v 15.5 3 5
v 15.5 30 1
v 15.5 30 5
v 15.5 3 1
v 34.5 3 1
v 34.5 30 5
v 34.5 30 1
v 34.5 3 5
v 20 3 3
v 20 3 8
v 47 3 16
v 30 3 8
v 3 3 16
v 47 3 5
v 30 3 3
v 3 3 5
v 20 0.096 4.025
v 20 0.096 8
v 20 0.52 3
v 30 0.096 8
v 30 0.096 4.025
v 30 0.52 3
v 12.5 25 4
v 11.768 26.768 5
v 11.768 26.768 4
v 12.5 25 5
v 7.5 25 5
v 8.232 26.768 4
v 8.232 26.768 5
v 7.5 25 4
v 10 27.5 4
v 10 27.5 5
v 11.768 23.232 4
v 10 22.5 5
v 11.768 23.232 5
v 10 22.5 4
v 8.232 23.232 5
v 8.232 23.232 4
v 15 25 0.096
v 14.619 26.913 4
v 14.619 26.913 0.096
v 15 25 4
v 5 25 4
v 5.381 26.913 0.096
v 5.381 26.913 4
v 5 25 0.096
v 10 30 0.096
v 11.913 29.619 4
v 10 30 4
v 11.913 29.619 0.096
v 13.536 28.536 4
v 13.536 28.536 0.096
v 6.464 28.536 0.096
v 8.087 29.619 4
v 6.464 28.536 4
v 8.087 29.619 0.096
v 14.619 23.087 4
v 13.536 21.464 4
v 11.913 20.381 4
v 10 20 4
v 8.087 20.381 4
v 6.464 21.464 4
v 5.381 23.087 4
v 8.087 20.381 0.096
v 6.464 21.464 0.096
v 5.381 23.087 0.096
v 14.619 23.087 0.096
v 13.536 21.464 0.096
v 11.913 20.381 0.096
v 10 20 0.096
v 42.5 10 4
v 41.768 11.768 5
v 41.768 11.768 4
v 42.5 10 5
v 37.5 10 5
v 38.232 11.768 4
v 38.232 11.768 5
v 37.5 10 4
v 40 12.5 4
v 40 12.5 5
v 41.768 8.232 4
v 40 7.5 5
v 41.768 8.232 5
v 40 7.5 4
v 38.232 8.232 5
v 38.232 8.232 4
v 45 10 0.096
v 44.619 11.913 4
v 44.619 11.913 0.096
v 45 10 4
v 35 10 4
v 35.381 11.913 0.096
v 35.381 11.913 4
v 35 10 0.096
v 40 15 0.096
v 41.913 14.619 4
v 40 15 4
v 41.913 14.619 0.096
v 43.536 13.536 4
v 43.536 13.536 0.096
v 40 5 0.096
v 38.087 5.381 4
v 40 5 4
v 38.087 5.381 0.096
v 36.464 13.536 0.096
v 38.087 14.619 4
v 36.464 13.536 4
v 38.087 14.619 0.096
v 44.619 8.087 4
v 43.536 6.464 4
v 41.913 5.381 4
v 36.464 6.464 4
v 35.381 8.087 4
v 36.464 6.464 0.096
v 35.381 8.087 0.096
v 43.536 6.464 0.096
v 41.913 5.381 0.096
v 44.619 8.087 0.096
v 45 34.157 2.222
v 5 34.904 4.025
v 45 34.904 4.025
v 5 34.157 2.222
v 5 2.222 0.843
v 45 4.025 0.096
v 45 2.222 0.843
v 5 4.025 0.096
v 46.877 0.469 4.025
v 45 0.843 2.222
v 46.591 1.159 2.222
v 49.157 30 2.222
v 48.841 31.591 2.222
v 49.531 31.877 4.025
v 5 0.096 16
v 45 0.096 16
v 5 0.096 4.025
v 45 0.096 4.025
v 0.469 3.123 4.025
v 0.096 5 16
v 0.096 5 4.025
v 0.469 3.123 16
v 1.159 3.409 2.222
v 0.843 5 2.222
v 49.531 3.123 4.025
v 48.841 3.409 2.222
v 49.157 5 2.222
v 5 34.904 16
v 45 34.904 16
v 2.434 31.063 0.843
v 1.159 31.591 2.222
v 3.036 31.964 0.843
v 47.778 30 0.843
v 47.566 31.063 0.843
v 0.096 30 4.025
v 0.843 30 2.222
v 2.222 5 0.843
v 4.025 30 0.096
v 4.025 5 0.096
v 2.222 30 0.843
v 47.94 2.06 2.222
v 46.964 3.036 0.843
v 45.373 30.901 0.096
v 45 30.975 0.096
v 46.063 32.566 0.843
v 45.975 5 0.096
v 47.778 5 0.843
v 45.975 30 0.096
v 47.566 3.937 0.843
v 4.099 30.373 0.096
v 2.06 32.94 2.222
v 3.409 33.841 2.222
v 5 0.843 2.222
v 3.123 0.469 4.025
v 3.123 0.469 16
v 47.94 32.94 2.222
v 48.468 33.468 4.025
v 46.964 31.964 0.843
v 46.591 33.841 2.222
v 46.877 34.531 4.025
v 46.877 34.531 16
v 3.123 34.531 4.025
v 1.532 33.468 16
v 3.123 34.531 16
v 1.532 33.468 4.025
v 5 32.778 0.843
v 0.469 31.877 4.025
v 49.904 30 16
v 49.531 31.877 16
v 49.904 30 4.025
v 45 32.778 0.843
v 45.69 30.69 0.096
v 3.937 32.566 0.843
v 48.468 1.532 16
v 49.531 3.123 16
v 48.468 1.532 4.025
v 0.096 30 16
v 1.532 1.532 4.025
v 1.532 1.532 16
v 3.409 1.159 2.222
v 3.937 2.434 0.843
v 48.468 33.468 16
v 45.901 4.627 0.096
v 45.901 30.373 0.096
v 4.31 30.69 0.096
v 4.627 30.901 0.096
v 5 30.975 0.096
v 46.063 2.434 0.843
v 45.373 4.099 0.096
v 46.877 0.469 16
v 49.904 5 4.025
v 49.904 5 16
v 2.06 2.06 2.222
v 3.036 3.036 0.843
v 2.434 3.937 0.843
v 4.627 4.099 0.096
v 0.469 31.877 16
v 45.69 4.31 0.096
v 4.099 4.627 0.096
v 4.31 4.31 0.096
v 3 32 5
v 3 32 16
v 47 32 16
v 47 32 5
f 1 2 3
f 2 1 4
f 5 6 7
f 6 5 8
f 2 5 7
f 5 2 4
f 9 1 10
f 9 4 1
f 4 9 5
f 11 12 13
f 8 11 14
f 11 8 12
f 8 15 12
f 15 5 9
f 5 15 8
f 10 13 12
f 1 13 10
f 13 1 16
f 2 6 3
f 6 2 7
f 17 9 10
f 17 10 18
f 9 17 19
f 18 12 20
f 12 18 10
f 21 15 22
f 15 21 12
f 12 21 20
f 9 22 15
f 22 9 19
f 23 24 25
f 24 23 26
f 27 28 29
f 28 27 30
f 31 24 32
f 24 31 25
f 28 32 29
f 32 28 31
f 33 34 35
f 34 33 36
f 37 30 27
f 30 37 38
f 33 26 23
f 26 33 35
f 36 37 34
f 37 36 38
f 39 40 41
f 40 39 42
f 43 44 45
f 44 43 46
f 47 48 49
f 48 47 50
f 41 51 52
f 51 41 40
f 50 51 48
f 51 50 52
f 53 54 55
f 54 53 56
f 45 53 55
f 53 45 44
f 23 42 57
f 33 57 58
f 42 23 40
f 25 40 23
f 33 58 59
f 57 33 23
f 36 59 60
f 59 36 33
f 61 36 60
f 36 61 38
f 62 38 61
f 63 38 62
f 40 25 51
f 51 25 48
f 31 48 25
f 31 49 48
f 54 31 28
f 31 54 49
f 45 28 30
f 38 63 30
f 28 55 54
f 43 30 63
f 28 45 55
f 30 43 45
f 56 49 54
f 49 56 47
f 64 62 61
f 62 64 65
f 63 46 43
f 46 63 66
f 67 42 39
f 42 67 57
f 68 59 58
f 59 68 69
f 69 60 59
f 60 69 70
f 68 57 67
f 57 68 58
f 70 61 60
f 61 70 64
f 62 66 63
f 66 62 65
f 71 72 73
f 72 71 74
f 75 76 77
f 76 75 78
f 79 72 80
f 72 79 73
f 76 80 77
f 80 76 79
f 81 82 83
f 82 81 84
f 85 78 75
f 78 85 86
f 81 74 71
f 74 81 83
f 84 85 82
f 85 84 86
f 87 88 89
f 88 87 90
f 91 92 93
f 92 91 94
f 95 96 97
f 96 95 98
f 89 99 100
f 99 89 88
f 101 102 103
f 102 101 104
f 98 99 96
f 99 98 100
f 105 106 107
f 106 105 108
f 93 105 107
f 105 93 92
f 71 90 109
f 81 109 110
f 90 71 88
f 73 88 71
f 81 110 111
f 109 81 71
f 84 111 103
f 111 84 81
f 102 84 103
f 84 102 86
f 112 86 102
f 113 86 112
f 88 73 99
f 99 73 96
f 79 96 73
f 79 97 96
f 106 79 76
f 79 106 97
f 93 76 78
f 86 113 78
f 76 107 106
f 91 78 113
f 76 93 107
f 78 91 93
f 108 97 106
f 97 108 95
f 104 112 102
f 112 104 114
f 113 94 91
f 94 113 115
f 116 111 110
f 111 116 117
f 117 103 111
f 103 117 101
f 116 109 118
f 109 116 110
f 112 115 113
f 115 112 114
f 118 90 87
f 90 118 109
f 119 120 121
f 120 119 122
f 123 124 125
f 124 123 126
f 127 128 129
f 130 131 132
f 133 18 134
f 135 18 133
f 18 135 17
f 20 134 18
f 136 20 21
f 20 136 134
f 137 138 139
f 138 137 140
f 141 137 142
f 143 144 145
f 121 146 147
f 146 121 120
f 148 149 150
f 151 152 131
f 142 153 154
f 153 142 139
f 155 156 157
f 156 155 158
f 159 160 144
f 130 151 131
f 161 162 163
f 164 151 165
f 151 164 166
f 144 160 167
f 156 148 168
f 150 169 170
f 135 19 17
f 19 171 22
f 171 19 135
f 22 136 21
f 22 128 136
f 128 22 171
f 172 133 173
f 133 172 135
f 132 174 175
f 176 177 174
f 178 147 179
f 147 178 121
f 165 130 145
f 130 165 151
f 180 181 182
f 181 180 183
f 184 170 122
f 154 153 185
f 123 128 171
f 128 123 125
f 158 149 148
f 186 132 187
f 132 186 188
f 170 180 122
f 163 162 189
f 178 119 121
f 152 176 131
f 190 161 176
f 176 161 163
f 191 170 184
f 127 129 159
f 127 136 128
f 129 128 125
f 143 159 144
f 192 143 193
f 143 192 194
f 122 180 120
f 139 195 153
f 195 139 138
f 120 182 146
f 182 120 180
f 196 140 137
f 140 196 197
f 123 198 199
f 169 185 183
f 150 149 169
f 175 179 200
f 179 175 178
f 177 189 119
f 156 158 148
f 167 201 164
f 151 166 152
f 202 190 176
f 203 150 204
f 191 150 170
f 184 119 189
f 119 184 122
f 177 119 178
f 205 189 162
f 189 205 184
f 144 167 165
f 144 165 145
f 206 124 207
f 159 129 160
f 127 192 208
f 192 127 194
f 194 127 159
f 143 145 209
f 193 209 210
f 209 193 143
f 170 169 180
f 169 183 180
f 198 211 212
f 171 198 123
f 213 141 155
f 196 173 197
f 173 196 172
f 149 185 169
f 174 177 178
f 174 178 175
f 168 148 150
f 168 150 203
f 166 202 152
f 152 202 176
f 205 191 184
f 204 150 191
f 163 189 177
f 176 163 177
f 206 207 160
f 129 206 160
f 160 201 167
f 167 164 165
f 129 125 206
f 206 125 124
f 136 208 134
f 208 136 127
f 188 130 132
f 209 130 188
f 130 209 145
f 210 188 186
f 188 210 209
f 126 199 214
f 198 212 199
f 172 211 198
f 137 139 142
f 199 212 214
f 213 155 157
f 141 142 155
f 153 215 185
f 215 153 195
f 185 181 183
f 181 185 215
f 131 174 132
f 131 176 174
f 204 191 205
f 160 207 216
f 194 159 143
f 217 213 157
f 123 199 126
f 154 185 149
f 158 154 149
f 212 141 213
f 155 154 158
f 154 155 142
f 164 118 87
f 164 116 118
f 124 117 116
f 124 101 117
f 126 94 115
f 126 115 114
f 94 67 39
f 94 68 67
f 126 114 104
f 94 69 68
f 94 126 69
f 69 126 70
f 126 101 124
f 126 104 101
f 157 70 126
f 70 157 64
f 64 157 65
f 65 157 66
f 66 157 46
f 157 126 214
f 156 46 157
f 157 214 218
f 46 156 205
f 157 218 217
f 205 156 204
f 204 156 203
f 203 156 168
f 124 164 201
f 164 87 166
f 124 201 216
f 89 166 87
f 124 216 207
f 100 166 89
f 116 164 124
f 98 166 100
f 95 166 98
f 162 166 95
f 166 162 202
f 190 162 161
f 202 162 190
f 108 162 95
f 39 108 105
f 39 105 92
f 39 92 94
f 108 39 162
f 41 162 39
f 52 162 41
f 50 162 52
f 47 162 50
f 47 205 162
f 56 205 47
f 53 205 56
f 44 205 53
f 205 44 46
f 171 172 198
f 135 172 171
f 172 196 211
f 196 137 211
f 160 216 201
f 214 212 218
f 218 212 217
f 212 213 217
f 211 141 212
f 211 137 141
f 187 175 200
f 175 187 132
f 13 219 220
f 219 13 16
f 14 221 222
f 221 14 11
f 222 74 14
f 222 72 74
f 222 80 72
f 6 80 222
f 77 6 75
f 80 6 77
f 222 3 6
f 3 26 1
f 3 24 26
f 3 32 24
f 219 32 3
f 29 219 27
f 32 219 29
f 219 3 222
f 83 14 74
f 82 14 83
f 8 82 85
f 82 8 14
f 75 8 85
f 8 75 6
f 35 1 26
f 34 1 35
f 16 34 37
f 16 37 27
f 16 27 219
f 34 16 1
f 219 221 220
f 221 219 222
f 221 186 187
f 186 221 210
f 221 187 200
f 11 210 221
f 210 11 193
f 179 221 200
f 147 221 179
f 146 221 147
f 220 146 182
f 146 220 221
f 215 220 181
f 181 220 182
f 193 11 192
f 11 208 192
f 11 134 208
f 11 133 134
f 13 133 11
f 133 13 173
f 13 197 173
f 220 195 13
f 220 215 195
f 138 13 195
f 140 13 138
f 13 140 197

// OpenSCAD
// main plate
// 10mm gap
translate([5, 5, 5]) {
    
     

    difference() {
        minkowski() {
            cube([40, 25, 20]);
            sphere(r=5);
            
        }
        translate([-2, -2, 0]) cube([44, 29, 34]);
        
        translate([-5, -5, -5]) {
            translate([15.5, 3, 1]) cube([19, 27, 6]);
            // usb port 10mm x 7mm
            translate([20, -1, 3]) cube([10, 7, 5]);
        }
        translate([5, 20, -5]) {
           cylinder(h=20, r=2.5);
            cylinder(h=4, r=5);
        }

        translate([35, 5, -5]) {
            
            cylinder(h=20, r=2.5);
            cylinder(h=4, r=5);
        }
        
        translate([-5, -5, 11]) cube([500, 500, 500]);

    }
}

color("red") {
    
}
